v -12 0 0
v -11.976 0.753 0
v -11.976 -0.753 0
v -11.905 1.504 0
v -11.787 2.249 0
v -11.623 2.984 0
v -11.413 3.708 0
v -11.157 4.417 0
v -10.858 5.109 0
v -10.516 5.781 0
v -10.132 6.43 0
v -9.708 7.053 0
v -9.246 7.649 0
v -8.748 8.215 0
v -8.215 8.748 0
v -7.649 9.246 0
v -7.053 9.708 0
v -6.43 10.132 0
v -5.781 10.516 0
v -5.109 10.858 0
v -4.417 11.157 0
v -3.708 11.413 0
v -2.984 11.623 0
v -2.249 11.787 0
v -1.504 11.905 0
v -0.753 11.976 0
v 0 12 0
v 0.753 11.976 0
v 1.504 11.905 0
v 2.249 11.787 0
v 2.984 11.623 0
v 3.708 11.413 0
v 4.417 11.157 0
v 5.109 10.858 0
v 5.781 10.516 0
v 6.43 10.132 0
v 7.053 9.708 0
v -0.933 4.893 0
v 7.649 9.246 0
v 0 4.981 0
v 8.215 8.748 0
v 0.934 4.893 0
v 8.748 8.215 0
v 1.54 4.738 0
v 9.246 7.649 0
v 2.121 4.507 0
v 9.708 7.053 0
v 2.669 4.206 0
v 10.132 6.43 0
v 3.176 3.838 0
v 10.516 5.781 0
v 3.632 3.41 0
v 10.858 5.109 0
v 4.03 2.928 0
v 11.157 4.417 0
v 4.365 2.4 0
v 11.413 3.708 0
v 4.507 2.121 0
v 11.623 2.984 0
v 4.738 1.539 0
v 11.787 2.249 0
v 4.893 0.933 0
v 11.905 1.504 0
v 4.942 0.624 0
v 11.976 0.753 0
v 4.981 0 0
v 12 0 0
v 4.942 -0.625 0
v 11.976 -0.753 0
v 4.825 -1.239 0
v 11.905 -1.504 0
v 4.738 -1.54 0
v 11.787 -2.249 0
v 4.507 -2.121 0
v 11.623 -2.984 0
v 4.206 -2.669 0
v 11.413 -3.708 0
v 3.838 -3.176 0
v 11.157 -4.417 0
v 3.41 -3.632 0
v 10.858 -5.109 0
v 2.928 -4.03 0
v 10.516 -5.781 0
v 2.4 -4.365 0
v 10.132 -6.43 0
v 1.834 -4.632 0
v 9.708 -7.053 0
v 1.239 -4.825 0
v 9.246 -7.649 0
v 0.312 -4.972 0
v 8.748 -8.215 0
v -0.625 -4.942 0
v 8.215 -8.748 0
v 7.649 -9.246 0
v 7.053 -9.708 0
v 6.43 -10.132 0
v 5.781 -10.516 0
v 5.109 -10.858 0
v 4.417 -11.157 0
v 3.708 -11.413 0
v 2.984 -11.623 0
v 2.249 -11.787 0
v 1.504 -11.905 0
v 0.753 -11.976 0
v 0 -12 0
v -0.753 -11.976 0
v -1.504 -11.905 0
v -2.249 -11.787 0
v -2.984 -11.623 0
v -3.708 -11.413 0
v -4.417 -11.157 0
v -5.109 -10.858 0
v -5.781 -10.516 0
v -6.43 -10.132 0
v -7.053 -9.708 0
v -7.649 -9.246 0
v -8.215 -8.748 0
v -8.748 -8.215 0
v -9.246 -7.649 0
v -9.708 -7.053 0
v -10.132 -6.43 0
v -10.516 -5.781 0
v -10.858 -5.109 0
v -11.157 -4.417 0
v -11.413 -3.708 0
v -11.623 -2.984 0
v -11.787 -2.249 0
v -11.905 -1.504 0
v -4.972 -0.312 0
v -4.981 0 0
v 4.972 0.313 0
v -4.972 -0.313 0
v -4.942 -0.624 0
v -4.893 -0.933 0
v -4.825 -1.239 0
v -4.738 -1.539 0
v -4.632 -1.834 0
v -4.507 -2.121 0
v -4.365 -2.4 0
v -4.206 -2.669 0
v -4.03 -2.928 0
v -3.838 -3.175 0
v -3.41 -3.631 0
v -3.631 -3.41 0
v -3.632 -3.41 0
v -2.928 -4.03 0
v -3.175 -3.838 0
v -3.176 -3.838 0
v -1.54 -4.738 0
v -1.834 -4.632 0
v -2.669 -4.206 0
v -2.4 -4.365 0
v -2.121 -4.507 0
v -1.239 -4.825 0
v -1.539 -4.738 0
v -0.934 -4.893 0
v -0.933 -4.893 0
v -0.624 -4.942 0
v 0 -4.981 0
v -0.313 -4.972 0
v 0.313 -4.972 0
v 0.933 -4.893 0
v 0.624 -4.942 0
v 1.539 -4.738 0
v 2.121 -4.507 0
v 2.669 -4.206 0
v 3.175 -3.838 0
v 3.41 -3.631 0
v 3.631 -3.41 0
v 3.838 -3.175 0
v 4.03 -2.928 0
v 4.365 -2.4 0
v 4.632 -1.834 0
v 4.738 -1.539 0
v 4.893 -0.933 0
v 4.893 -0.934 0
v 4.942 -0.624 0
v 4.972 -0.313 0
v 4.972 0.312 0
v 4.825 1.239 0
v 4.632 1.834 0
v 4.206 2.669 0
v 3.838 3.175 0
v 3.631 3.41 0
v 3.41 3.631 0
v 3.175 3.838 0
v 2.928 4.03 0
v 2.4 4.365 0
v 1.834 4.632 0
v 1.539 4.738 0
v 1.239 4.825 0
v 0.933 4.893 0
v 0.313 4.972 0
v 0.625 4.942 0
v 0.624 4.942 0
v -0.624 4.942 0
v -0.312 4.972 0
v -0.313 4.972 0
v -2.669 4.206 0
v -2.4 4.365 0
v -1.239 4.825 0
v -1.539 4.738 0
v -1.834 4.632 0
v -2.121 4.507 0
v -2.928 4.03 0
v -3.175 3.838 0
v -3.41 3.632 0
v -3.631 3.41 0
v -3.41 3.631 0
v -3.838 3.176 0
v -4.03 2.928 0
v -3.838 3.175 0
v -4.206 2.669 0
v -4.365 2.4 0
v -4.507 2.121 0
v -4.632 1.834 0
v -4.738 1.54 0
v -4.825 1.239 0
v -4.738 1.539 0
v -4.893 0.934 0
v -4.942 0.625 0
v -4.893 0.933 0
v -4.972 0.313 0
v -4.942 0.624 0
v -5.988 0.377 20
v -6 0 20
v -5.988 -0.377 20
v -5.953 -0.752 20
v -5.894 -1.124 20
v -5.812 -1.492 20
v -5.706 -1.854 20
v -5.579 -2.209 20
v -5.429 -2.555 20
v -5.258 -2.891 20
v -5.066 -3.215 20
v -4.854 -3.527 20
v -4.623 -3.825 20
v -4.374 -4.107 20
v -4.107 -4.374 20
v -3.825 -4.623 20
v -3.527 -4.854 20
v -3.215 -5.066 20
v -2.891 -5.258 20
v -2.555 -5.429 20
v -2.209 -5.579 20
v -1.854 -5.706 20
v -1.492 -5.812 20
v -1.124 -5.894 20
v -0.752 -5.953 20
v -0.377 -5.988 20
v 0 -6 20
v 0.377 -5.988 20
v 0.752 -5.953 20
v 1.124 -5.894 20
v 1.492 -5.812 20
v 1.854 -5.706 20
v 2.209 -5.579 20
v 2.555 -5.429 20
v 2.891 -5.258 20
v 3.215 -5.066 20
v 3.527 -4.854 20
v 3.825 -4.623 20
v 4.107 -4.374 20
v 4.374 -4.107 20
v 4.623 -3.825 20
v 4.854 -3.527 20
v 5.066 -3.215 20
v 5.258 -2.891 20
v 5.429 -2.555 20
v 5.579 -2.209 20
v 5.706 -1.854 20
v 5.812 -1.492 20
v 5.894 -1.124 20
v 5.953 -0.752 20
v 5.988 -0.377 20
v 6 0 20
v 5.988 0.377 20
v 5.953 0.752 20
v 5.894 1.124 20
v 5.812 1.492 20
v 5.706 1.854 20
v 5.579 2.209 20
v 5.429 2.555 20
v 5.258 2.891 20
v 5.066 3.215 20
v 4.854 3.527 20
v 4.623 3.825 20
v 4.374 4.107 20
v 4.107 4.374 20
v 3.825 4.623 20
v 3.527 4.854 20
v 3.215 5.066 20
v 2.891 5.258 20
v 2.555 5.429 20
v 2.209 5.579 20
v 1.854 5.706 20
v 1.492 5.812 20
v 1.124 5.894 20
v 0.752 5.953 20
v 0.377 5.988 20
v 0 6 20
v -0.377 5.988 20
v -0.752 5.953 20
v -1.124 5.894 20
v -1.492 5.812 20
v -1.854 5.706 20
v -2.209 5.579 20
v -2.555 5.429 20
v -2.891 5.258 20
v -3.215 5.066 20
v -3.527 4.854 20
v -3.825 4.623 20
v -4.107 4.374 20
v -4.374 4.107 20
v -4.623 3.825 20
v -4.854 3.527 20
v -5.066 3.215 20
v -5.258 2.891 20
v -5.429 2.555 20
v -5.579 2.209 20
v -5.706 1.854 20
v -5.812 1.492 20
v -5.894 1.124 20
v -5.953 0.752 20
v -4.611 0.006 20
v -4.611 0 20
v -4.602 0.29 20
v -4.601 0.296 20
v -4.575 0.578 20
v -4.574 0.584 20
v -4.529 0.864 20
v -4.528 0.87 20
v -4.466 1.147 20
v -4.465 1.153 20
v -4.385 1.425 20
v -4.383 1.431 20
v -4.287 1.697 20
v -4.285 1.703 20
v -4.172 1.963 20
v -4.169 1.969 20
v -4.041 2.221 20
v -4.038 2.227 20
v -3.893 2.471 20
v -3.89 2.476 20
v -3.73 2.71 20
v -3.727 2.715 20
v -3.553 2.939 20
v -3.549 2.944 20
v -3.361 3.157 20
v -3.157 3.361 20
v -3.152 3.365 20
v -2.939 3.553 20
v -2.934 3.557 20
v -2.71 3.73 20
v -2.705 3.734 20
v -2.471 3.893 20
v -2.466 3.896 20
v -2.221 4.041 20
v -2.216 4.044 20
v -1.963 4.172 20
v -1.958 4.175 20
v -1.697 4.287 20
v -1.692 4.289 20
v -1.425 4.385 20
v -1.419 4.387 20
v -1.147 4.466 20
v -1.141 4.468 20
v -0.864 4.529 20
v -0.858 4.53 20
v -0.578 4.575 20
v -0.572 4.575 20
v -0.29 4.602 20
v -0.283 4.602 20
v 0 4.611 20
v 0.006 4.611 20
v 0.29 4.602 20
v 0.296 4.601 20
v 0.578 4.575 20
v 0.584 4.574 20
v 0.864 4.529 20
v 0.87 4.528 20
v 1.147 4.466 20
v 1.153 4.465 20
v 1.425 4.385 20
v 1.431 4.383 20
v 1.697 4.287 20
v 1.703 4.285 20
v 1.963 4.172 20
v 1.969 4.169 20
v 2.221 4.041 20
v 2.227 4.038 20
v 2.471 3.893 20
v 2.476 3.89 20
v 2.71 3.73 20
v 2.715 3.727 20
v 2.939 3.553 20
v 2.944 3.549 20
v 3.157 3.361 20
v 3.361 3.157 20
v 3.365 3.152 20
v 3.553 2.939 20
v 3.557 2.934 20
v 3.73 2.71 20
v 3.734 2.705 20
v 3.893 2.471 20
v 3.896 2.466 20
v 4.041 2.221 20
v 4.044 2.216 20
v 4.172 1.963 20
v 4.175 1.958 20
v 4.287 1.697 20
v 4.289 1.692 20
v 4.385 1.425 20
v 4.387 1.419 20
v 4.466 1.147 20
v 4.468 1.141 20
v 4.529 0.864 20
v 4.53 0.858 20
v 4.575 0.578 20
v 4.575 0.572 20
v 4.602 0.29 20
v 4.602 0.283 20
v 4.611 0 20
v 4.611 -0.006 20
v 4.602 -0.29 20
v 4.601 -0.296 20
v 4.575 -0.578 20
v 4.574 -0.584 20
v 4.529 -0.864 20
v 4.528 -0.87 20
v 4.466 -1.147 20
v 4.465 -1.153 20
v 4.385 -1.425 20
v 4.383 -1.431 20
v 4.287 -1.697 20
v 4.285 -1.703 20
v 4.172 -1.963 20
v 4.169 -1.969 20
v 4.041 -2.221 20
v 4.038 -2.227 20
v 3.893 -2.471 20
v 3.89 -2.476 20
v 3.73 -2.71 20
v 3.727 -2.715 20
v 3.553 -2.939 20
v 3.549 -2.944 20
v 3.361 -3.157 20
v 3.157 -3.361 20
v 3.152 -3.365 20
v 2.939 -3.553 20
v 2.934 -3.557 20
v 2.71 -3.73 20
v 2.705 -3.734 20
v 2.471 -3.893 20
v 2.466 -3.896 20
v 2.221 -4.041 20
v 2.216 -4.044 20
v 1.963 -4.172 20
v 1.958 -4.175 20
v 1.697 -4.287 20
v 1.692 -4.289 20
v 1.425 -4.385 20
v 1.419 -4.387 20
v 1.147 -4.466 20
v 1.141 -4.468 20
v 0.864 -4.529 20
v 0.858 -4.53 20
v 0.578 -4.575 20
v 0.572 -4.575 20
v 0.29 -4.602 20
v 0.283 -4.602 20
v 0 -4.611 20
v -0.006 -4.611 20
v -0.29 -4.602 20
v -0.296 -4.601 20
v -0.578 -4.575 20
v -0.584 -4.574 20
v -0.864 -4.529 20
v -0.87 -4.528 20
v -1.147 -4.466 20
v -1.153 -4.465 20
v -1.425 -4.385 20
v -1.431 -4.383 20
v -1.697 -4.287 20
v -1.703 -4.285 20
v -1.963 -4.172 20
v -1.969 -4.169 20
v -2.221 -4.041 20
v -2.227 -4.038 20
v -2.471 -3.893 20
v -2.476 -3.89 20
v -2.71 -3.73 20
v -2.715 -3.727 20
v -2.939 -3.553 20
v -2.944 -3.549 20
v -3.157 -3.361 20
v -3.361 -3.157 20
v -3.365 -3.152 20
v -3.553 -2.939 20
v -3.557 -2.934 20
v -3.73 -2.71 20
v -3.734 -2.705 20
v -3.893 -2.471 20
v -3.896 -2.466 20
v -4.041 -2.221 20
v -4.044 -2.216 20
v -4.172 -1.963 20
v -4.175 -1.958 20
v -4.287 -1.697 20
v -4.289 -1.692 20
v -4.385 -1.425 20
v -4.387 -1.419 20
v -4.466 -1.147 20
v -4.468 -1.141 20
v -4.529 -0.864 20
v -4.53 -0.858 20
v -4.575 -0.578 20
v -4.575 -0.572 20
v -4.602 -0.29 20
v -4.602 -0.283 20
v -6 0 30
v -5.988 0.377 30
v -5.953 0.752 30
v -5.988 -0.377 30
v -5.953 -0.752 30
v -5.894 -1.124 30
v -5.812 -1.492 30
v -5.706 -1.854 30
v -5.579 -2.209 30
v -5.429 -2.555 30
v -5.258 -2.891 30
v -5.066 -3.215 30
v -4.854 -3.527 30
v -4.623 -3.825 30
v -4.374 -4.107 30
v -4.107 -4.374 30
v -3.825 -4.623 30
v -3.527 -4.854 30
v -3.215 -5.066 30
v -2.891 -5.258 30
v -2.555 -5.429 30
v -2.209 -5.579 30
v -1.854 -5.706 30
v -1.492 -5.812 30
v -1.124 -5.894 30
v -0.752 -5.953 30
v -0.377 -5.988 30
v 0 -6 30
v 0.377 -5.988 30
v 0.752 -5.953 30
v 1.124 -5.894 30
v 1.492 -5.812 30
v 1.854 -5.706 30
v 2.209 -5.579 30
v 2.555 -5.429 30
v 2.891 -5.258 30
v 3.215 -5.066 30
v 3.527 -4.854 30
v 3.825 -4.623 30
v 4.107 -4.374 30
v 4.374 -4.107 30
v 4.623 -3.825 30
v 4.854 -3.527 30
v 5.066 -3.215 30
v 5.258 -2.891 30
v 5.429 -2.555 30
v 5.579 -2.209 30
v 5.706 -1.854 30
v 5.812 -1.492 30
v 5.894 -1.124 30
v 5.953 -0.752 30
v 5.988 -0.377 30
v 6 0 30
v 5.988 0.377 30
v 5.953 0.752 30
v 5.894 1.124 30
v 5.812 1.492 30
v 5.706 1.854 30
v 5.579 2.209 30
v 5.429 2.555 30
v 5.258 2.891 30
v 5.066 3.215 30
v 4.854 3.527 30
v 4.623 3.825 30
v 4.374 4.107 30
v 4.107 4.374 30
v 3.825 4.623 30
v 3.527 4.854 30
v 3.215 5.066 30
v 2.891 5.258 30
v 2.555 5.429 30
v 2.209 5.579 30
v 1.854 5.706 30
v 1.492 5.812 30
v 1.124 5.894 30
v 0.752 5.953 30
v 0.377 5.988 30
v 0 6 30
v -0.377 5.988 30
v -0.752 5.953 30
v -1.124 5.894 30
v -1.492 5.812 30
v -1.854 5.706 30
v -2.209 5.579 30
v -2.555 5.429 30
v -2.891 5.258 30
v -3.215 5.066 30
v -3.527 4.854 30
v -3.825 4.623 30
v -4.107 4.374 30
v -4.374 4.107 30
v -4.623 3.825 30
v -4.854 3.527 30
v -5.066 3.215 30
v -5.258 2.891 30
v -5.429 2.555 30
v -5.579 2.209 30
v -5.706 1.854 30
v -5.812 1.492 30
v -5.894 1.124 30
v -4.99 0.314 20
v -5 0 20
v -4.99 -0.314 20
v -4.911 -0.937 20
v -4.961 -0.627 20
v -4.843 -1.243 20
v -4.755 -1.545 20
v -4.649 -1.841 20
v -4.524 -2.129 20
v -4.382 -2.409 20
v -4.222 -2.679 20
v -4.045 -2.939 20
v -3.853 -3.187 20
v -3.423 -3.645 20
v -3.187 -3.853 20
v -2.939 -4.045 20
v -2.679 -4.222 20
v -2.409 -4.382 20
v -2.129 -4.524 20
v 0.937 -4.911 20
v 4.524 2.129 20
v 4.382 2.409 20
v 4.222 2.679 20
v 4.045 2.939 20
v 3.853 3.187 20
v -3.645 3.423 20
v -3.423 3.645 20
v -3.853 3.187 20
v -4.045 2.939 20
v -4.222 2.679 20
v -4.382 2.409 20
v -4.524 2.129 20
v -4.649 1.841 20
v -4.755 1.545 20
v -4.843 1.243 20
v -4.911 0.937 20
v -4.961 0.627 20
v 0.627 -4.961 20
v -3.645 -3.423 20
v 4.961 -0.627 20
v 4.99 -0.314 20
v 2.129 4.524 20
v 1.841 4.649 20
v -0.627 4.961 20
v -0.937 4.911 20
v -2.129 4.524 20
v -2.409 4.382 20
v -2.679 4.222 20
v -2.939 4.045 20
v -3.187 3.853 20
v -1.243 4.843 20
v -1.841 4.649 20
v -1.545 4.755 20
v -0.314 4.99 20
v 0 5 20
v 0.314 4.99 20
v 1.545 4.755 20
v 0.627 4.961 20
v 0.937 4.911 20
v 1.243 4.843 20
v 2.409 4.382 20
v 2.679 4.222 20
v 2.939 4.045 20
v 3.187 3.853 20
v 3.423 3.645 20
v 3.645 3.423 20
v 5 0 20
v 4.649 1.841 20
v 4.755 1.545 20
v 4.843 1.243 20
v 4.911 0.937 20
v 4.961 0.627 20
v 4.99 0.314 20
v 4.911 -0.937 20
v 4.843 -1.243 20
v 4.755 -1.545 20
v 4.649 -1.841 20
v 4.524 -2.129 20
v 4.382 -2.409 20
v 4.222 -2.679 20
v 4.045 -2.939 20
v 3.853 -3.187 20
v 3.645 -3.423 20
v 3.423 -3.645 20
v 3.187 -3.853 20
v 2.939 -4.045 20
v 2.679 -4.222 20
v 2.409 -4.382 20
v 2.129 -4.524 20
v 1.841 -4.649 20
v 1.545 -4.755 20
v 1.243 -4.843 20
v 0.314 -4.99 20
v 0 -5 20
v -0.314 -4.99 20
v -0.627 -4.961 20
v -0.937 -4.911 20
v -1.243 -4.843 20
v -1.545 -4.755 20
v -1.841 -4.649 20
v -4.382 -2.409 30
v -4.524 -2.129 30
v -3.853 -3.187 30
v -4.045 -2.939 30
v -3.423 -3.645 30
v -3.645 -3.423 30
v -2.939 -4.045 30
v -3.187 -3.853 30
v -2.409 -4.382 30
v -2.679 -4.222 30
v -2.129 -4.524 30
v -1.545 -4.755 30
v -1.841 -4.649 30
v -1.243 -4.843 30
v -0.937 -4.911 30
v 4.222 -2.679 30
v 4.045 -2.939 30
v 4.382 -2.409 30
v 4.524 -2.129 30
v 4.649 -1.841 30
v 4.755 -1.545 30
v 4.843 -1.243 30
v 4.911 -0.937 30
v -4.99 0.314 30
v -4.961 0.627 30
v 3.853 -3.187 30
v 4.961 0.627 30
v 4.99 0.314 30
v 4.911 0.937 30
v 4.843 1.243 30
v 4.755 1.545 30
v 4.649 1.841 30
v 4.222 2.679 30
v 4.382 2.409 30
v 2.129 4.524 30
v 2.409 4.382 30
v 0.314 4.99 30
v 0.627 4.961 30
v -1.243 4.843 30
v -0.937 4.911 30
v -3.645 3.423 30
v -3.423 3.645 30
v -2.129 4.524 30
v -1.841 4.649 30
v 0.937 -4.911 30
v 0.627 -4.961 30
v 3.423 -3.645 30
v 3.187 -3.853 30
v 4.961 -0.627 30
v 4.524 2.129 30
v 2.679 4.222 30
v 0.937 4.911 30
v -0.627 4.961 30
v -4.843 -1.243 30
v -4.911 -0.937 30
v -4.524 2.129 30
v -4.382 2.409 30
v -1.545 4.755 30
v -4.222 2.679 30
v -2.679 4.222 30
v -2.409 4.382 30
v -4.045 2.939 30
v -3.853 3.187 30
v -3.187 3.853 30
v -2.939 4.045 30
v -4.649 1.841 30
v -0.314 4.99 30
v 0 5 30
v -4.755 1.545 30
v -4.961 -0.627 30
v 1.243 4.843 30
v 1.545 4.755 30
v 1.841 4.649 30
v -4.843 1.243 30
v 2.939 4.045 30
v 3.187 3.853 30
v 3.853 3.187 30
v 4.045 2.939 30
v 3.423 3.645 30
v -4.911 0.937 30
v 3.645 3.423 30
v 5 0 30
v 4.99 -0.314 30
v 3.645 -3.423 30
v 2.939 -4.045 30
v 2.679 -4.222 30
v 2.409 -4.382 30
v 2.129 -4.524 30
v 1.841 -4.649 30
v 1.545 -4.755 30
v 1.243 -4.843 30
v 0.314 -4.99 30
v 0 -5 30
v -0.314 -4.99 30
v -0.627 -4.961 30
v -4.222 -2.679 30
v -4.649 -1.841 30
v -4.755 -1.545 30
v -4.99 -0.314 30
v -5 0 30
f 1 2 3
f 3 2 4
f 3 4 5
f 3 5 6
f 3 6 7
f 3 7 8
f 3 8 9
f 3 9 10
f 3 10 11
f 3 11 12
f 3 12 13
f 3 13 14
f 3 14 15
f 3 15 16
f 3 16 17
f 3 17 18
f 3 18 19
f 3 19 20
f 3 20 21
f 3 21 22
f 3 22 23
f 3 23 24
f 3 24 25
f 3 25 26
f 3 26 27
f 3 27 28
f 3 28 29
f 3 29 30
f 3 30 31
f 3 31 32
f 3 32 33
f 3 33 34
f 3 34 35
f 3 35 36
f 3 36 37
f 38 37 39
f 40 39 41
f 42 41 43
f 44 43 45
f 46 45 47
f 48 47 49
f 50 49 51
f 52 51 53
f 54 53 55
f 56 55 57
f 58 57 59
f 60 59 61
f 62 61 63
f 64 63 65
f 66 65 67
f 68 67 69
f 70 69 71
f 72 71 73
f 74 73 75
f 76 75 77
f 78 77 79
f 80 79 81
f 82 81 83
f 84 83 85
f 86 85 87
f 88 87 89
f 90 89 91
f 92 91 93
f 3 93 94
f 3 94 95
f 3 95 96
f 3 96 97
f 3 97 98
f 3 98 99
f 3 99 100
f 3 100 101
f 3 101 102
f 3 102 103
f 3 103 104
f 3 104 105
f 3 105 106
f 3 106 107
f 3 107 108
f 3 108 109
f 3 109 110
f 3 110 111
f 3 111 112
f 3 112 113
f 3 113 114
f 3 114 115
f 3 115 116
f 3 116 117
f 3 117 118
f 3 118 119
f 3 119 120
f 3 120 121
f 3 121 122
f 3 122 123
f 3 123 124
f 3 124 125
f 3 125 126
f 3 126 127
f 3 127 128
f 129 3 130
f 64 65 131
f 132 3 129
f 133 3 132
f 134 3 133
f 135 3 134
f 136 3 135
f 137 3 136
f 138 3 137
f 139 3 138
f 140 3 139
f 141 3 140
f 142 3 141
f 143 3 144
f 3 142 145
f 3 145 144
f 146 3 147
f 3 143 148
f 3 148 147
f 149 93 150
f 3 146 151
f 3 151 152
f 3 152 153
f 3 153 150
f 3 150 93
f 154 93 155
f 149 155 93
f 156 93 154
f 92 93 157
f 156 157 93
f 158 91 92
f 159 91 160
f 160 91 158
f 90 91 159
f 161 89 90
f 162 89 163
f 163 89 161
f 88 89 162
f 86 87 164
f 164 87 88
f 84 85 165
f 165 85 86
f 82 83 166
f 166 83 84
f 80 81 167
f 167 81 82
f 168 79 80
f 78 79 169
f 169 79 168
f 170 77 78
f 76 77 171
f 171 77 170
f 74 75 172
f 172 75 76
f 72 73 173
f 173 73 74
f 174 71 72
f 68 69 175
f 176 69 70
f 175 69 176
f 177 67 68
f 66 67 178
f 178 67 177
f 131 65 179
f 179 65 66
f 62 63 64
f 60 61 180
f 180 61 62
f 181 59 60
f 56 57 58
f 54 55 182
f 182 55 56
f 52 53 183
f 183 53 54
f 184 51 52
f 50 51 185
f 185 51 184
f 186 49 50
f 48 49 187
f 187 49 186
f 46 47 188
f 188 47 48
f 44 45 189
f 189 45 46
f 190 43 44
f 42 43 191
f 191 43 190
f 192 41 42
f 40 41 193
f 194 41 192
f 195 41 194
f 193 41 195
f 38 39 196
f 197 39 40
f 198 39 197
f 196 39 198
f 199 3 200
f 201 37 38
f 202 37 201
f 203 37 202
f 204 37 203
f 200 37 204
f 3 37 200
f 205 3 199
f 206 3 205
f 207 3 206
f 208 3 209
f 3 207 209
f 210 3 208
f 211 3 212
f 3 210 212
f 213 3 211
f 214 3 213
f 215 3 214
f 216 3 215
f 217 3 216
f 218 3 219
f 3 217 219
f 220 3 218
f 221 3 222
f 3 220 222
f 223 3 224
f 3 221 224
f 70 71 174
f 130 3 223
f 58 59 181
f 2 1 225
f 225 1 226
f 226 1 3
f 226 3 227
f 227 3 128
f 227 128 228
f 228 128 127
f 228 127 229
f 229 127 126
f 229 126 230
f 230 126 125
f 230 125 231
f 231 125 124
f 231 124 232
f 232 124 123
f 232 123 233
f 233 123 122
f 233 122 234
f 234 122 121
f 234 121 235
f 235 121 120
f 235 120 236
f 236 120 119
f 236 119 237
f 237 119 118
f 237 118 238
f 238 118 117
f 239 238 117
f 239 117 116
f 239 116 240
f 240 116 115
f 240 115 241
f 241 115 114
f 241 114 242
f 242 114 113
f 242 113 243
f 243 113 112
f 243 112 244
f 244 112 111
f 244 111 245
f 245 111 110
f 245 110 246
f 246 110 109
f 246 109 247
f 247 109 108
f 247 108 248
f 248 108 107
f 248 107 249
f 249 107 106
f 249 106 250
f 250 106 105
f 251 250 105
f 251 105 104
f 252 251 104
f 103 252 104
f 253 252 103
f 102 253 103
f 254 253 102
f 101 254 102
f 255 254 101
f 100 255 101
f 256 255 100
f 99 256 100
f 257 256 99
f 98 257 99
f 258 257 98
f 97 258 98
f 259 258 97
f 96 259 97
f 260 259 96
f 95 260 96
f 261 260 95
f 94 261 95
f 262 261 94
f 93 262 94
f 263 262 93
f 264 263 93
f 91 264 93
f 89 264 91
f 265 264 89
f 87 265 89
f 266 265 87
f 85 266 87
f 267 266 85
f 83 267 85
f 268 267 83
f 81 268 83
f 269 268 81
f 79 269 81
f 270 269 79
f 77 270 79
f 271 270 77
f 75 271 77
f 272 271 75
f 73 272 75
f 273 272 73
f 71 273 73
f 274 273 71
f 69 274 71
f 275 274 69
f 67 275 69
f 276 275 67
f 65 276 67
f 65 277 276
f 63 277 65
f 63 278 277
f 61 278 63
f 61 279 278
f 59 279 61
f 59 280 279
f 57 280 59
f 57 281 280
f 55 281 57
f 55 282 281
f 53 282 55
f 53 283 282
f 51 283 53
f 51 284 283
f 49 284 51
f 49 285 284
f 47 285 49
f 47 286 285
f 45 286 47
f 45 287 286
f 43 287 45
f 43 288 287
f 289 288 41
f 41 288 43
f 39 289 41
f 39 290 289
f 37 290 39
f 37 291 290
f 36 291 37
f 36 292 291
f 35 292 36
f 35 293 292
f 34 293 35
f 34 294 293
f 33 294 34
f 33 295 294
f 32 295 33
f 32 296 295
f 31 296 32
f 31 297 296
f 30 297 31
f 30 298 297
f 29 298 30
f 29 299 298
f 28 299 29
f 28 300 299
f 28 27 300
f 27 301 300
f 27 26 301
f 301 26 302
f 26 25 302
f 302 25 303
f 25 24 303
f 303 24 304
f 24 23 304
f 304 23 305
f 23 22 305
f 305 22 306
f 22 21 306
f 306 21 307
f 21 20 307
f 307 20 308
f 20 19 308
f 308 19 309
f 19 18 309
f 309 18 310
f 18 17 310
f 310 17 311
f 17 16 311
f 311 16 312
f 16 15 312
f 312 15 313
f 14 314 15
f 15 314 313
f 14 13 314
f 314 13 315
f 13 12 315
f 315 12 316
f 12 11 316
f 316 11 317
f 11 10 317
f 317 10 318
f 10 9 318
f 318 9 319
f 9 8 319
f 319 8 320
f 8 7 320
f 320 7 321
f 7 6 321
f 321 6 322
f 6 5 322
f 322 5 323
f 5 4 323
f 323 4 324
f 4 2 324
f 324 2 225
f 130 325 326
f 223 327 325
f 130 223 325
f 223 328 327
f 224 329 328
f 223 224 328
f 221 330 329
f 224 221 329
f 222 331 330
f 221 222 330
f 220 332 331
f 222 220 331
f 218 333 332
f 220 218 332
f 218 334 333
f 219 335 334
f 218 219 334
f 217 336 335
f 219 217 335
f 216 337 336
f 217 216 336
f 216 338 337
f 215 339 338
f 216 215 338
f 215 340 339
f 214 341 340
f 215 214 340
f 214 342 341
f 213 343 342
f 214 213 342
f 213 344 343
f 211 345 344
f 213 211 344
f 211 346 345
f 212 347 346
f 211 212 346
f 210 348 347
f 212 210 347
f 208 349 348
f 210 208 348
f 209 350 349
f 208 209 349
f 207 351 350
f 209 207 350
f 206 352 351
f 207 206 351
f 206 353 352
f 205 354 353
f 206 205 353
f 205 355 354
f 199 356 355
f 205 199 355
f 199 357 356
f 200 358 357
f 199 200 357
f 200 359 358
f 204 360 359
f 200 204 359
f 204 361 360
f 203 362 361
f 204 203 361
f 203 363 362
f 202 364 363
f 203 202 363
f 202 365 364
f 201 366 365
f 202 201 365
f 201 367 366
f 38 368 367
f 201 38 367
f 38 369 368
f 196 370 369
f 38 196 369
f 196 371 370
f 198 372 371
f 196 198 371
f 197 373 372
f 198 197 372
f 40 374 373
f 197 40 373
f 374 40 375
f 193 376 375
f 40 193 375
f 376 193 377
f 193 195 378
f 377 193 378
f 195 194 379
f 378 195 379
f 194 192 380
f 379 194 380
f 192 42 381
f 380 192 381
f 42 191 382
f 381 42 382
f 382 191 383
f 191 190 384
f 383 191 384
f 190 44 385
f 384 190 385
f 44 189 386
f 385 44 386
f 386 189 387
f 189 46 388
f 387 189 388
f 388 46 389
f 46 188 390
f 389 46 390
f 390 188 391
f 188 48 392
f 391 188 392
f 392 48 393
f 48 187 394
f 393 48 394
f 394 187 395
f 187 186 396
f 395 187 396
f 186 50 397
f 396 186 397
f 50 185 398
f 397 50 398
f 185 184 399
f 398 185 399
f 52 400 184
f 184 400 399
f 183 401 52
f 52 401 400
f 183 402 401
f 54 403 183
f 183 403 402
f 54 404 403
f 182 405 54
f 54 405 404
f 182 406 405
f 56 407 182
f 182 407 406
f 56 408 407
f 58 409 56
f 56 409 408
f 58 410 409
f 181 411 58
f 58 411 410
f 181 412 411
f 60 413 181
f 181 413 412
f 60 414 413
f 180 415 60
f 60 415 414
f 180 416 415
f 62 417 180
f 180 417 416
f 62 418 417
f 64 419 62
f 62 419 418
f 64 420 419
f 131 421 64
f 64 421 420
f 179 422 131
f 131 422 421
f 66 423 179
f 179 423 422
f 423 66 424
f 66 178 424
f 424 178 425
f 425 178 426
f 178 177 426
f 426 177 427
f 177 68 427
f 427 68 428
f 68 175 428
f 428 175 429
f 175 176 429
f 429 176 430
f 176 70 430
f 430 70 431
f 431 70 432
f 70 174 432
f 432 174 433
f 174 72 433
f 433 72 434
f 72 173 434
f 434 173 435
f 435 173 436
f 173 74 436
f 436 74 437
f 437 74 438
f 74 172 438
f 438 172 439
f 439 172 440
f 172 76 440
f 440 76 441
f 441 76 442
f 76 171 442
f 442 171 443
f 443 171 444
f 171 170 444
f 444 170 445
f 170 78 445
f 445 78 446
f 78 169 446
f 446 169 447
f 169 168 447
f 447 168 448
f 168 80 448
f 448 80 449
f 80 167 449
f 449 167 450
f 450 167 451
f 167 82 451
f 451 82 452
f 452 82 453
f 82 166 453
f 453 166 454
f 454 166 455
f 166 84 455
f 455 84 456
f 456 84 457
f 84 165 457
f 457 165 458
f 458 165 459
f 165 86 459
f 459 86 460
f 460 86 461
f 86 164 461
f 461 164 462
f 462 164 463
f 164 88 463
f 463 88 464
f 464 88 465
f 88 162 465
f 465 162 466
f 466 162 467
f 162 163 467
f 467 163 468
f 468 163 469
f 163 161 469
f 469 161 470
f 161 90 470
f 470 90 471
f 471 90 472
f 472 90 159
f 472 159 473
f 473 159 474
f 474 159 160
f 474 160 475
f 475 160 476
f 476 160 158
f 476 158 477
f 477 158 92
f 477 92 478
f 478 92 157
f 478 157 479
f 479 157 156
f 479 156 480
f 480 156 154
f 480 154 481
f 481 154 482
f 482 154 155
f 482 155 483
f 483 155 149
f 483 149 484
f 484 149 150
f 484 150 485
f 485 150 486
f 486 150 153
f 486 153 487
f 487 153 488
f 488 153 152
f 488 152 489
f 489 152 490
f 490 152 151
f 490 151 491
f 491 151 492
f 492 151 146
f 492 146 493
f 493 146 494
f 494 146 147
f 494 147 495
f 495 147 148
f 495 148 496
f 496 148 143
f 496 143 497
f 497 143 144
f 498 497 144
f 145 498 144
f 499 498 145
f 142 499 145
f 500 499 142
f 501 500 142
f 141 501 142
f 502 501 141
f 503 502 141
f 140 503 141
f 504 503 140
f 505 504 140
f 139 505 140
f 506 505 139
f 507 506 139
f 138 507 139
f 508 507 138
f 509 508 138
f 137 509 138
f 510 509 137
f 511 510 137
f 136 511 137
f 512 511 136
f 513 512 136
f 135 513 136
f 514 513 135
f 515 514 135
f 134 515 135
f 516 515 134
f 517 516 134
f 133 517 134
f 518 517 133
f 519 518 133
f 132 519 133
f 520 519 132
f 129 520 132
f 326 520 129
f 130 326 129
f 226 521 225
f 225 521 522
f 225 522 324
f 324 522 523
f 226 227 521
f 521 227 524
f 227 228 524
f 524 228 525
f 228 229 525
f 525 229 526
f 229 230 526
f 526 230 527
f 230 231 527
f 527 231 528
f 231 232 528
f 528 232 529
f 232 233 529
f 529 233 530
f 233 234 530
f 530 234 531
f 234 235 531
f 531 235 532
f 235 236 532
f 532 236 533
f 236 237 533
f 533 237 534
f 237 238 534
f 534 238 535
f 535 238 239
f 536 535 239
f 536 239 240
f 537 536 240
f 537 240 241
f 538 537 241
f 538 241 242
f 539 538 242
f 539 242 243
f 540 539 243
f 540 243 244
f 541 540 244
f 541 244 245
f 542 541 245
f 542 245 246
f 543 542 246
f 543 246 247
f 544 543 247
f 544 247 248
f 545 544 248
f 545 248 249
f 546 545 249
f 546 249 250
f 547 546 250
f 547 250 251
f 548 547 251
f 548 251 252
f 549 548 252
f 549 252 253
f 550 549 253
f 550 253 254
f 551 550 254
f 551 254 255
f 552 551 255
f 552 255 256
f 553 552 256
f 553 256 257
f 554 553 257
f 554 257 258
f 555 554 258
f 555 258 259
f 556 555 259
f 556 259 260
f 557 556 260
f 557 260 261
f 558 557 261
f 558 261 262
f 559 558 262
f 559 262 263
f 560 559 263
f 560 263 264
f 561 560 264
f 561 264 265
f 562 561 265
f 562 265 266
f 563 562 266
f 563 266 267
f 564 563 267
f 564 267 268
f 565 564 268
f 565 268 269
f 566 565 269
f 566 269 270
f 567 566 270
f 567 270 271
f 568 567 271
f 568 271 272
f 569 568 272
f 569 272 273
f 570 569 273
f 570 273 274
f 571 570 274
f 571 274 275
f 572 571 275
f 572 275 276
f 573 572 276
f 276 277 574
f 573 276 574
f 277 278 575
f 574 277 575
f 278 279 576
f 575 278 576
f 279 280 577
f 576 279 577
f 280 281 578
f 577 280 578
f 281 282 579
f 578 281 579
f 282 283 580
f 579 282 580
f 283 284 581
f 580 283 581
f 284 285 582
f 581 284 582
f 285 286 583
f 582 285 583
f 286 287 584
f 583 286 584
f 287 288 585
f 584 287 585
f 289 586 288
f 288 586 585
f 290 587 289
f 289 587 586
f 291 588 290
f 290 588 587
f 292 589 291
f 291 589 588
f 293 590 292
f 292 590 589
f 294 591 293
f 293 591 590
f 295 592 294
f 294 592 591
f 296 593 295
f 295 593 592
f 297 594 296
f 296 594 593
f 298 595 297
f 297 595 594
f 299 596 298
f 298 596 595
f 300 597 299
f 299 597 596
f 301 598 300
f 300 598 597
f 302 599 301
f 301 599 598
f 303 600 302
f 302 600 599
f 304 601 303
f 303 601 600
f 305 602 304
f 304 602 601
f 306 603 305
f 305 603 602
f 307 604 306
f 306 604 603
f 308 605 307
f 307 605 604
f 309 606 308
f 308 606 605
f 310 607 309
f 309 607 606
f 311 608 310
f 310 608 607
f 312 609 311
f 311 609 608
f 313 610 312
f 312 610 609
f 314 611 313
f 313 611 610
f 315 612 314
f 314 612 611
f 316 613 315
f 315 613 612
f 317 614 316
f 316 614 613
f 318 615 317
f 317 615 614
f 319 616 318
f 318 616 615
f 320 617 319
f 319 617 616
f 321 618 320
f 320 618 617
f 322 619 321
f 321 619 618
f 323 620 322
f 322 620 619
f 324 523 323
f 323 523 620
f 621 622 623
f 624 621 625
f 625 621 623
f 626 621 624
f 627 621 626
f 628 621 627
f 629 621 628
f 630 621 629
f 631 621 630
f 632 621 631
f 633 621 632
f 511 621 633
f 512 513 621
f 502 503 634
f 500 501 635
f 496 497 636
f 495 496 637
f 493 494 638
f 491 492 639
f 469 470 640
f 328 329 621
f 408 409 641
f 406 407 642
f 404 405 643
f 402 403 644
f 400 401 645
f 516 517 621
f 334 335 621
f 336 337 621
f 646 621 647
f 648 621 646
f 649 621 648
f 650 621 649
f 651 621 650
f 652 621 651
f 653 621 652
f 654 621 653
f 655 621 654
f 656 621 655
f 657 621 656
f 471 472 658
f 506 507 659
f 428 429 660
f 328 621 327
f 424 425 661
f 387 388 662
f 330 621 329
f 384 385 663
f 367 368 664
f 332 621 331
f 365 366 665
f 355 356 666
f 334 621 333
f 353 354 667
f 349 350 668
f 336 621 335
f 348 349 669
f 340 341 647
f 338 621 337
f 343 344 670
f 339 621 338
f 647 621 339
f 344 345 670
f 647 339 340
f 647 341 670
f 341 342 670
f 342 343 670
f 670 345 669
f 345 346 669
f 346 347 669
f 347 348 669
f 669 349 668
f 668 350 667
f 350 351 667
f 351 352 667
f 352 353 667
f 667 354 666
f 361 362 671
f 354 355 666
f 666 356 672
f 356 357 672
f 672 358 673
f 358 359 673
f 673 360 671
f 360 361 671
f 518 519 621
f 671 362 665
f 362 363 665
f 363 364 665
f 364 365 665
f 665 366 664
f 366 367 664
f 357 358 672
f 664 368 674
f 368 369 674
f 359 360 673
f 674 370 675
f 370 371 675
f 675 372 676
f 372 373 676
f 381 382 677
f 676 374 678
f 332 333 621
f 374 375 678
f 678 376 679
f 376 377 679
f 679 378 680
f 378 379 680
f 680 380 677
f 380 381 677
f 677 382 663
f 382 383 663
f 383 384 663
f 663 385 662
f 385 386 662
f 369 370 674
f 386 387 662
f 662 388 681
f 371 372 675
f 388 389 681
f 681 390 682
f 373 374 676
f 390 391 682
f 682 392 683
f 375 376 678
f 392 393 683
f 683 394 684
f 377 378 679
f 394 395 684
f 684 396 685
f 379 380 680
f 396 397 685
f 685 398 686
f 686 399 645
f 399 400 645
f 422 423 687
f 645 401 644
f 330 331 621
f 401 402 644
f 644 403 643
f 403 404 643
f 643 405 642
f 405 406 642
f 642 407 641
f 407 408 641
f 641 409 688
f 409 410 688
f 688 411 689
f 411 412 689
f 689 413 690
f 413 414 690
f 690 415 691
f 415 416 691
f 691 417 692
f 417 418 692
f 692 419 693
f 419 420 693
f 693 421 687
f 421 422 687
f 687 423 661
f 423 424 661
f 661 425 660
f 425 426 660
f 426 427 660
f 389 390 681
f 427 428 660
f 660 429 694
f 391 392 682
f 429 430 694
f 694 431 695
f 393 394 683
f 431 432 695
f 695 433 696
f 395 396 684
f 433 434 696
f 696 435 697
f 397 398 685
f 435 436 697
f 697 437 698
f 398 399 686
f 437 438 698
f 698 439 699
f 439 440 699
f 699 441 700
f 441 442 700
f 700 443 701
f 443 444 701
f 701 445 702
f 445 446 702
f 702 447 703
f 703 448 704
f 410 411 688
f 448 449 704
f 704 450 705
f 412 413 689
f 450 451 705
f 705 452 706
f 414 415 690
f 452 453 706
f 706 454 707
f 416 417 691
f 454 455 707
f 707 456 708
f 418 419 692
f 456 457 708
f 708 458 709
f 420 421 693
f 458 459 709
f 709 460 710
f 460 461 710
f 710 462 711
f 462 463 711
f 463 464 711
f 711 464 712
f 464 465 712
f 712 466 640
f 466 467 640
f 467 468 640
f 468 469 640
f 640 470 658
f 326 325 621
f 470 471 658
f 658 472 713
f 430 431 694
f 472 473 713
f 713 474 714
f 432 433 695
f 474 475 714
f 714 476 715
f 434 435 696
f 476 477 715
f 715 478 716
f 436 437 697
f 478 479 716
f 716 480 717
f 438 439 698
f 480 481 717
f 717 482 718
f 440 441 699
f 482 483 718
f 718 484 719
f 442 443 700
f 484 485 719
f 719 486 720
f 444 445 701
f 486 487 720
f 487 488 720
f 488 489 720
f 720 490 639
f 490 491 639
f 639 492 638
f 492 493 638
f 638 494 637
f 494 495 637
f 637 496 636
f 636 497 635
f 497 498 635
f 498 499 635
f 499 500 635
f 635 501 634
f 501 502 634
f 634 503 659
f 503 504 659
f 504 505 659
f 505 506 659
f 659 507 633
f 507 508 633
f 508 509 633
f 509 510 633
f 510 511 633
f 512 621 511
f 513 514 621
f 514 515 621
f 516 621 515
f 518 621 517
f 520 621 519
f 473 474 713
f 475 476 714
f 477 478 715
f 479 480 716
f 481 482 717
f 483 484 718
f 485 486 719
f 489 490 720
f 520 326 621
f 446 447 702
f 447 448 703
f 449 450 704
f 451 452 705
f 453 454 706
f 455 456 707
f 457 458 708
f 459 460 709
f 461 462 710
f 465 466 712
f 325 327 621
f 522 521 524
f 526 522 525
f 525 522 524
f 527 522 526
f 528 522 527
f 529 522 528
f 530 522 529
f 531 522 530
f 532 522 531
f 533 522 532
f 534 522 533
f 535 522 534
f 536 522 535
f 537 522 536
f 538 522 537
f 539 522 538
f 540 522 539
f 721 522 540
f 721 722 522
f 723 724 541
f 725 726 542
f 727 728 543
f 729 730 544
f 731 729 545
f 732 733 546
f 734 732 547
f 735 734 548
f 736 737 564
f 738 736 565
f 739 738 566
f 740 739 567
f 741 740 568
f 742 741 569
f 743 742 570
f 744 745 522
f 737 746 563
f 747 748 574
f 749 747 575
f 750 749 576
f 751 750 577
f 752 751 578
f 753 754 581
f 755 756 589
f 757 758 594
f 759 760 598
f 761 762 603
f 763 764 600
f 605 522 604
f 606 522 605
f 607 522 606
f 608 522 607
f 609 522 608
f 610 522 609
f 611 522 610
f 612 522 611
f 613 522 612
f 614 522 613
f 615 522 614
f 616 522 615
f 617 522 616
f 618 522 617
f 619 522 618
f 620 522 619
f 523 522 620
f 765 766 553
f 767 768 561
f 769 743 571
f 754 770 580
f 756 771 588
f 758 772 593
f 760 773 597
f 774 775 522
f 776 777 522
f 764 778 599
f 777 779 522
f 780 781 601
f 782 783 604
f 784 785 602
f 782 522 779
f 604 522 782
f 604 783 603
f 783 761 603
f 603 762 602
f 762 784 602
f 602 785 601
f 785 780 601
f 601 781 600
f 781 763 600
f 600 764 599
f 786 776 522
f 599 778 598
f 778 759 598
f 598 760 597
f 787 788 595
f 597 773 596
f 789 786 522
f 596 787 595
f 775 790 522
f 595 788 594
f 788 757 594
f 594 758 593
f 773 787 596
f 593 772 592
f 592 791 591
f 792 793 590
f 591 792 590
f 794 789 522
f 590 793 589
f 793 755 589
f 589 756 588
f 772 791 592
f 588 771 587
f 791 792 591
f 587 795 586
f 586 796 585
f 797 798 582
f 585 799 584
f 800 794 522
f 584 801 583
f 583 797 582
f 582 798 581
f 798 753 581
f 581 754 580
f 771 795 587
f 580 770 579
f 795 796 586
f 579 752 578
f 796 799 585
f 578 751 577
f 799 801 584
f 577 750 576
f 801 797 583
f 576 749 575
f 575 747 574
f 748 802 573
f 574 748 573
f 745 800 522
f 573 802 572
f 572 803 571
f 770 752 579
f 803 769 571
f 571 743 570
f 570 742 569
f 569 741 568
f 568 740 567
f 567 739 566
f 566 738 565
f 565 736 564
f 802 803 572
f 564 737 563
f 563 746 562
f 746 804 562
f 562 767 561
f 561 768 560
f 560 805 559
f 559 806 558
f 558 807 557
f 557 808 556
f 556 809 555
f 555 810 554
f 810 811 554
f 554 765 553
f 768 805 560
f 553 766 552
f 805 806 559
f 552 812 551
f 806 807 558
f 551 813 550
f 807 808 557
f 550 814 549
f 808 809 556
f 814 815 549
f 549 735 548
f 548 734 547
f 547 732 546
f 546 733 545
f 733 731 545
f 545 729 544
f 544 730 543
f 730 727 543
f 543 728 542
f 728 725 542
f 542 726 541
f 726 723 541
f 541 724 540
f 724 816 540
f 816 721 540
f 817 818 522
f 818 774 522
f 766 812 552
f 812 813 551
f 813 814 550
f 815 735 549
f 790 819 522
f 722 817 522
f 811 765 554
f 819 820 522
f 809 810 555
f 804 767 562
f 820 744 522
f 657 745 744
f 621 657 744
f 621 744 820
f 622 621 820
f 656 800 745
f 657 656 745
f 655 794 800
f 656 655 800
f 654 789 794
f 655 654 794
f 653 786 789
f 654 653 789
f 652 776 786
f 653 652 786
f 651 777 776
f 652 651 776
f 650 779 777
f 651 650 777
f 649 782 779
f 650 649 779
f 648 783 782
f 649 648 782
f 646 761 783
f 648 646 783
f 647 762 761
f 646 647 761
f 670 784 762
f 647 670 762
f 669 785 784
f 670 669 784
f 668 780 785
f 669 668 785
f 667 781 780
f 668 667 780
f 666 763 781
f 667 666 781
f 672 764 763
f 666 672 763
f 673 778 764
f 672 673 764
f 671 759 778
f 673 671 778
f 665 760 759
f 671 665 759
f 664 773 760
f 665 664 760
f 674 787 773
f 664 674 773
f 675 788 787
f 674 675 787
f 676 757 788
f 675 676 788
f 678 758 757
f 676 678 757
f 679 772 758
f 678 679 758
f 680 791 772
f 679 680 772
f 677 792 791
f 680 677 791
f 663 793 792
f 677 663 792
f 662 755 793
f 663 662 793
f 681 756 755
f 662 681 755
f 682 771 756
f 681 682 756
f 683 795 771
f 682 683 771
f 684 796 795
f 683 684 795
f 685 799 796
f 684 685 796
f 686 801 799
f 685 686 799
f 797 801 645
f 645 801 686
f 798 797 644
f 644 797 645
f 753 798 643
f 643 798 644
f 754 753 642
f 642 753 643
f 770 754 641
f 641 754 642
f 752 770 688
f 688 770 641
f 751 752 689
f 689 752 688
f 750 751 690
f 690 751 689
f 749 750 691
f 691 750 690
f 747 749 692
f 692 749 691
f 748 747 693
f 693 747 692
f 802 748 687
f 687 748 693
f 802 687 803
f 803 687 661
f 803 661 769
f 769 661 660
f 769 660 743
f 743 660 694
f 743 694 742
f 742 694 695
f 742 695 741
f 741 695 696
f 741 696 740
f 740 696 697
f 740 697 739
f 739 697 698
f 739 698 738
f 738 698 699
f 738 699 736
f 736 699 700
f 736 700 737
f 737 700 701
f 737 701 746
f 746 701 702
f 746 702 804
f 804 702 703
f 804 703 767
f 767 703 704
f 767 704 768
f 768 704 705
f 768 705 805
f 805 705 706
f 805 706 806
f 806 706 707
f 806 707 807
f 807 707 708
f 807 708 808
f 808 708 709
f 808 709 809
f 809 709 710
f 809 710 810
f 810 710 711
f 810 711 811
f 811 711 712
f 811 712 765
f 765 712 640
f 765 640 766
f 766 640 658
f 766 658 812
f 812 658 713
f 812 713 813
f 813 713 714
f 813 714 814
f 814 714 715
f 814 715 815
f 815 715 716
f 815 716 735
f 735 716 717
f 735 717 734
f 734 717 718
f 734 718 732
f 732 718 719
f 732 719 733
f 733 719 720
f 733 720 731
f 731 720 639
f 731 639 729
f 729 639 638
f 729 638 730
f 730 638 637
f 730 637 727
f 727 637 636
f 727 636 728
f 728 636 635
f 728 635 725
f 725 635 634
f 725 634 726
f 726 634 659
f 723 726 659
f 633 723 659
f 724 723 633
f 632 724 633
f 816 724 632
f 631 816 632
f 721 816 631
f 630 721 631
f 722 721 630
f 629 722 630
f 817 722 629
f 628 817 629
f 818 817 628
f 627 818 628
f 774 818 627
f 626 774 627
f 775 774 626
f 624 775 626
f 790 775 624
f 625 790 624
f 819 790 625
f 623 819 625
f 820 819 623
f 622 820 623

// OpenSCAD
$fn=100;
difference () {
color ([0,1,0])cylinder (30,6,6);
translate ([0,0,-1])color ([0,1,0])cylinder (32,5,5);
}
difference (){
color ([0,1,0])cylinder (20,12,6);
translate ([0,0,-1])cylinder (216,5);
}
